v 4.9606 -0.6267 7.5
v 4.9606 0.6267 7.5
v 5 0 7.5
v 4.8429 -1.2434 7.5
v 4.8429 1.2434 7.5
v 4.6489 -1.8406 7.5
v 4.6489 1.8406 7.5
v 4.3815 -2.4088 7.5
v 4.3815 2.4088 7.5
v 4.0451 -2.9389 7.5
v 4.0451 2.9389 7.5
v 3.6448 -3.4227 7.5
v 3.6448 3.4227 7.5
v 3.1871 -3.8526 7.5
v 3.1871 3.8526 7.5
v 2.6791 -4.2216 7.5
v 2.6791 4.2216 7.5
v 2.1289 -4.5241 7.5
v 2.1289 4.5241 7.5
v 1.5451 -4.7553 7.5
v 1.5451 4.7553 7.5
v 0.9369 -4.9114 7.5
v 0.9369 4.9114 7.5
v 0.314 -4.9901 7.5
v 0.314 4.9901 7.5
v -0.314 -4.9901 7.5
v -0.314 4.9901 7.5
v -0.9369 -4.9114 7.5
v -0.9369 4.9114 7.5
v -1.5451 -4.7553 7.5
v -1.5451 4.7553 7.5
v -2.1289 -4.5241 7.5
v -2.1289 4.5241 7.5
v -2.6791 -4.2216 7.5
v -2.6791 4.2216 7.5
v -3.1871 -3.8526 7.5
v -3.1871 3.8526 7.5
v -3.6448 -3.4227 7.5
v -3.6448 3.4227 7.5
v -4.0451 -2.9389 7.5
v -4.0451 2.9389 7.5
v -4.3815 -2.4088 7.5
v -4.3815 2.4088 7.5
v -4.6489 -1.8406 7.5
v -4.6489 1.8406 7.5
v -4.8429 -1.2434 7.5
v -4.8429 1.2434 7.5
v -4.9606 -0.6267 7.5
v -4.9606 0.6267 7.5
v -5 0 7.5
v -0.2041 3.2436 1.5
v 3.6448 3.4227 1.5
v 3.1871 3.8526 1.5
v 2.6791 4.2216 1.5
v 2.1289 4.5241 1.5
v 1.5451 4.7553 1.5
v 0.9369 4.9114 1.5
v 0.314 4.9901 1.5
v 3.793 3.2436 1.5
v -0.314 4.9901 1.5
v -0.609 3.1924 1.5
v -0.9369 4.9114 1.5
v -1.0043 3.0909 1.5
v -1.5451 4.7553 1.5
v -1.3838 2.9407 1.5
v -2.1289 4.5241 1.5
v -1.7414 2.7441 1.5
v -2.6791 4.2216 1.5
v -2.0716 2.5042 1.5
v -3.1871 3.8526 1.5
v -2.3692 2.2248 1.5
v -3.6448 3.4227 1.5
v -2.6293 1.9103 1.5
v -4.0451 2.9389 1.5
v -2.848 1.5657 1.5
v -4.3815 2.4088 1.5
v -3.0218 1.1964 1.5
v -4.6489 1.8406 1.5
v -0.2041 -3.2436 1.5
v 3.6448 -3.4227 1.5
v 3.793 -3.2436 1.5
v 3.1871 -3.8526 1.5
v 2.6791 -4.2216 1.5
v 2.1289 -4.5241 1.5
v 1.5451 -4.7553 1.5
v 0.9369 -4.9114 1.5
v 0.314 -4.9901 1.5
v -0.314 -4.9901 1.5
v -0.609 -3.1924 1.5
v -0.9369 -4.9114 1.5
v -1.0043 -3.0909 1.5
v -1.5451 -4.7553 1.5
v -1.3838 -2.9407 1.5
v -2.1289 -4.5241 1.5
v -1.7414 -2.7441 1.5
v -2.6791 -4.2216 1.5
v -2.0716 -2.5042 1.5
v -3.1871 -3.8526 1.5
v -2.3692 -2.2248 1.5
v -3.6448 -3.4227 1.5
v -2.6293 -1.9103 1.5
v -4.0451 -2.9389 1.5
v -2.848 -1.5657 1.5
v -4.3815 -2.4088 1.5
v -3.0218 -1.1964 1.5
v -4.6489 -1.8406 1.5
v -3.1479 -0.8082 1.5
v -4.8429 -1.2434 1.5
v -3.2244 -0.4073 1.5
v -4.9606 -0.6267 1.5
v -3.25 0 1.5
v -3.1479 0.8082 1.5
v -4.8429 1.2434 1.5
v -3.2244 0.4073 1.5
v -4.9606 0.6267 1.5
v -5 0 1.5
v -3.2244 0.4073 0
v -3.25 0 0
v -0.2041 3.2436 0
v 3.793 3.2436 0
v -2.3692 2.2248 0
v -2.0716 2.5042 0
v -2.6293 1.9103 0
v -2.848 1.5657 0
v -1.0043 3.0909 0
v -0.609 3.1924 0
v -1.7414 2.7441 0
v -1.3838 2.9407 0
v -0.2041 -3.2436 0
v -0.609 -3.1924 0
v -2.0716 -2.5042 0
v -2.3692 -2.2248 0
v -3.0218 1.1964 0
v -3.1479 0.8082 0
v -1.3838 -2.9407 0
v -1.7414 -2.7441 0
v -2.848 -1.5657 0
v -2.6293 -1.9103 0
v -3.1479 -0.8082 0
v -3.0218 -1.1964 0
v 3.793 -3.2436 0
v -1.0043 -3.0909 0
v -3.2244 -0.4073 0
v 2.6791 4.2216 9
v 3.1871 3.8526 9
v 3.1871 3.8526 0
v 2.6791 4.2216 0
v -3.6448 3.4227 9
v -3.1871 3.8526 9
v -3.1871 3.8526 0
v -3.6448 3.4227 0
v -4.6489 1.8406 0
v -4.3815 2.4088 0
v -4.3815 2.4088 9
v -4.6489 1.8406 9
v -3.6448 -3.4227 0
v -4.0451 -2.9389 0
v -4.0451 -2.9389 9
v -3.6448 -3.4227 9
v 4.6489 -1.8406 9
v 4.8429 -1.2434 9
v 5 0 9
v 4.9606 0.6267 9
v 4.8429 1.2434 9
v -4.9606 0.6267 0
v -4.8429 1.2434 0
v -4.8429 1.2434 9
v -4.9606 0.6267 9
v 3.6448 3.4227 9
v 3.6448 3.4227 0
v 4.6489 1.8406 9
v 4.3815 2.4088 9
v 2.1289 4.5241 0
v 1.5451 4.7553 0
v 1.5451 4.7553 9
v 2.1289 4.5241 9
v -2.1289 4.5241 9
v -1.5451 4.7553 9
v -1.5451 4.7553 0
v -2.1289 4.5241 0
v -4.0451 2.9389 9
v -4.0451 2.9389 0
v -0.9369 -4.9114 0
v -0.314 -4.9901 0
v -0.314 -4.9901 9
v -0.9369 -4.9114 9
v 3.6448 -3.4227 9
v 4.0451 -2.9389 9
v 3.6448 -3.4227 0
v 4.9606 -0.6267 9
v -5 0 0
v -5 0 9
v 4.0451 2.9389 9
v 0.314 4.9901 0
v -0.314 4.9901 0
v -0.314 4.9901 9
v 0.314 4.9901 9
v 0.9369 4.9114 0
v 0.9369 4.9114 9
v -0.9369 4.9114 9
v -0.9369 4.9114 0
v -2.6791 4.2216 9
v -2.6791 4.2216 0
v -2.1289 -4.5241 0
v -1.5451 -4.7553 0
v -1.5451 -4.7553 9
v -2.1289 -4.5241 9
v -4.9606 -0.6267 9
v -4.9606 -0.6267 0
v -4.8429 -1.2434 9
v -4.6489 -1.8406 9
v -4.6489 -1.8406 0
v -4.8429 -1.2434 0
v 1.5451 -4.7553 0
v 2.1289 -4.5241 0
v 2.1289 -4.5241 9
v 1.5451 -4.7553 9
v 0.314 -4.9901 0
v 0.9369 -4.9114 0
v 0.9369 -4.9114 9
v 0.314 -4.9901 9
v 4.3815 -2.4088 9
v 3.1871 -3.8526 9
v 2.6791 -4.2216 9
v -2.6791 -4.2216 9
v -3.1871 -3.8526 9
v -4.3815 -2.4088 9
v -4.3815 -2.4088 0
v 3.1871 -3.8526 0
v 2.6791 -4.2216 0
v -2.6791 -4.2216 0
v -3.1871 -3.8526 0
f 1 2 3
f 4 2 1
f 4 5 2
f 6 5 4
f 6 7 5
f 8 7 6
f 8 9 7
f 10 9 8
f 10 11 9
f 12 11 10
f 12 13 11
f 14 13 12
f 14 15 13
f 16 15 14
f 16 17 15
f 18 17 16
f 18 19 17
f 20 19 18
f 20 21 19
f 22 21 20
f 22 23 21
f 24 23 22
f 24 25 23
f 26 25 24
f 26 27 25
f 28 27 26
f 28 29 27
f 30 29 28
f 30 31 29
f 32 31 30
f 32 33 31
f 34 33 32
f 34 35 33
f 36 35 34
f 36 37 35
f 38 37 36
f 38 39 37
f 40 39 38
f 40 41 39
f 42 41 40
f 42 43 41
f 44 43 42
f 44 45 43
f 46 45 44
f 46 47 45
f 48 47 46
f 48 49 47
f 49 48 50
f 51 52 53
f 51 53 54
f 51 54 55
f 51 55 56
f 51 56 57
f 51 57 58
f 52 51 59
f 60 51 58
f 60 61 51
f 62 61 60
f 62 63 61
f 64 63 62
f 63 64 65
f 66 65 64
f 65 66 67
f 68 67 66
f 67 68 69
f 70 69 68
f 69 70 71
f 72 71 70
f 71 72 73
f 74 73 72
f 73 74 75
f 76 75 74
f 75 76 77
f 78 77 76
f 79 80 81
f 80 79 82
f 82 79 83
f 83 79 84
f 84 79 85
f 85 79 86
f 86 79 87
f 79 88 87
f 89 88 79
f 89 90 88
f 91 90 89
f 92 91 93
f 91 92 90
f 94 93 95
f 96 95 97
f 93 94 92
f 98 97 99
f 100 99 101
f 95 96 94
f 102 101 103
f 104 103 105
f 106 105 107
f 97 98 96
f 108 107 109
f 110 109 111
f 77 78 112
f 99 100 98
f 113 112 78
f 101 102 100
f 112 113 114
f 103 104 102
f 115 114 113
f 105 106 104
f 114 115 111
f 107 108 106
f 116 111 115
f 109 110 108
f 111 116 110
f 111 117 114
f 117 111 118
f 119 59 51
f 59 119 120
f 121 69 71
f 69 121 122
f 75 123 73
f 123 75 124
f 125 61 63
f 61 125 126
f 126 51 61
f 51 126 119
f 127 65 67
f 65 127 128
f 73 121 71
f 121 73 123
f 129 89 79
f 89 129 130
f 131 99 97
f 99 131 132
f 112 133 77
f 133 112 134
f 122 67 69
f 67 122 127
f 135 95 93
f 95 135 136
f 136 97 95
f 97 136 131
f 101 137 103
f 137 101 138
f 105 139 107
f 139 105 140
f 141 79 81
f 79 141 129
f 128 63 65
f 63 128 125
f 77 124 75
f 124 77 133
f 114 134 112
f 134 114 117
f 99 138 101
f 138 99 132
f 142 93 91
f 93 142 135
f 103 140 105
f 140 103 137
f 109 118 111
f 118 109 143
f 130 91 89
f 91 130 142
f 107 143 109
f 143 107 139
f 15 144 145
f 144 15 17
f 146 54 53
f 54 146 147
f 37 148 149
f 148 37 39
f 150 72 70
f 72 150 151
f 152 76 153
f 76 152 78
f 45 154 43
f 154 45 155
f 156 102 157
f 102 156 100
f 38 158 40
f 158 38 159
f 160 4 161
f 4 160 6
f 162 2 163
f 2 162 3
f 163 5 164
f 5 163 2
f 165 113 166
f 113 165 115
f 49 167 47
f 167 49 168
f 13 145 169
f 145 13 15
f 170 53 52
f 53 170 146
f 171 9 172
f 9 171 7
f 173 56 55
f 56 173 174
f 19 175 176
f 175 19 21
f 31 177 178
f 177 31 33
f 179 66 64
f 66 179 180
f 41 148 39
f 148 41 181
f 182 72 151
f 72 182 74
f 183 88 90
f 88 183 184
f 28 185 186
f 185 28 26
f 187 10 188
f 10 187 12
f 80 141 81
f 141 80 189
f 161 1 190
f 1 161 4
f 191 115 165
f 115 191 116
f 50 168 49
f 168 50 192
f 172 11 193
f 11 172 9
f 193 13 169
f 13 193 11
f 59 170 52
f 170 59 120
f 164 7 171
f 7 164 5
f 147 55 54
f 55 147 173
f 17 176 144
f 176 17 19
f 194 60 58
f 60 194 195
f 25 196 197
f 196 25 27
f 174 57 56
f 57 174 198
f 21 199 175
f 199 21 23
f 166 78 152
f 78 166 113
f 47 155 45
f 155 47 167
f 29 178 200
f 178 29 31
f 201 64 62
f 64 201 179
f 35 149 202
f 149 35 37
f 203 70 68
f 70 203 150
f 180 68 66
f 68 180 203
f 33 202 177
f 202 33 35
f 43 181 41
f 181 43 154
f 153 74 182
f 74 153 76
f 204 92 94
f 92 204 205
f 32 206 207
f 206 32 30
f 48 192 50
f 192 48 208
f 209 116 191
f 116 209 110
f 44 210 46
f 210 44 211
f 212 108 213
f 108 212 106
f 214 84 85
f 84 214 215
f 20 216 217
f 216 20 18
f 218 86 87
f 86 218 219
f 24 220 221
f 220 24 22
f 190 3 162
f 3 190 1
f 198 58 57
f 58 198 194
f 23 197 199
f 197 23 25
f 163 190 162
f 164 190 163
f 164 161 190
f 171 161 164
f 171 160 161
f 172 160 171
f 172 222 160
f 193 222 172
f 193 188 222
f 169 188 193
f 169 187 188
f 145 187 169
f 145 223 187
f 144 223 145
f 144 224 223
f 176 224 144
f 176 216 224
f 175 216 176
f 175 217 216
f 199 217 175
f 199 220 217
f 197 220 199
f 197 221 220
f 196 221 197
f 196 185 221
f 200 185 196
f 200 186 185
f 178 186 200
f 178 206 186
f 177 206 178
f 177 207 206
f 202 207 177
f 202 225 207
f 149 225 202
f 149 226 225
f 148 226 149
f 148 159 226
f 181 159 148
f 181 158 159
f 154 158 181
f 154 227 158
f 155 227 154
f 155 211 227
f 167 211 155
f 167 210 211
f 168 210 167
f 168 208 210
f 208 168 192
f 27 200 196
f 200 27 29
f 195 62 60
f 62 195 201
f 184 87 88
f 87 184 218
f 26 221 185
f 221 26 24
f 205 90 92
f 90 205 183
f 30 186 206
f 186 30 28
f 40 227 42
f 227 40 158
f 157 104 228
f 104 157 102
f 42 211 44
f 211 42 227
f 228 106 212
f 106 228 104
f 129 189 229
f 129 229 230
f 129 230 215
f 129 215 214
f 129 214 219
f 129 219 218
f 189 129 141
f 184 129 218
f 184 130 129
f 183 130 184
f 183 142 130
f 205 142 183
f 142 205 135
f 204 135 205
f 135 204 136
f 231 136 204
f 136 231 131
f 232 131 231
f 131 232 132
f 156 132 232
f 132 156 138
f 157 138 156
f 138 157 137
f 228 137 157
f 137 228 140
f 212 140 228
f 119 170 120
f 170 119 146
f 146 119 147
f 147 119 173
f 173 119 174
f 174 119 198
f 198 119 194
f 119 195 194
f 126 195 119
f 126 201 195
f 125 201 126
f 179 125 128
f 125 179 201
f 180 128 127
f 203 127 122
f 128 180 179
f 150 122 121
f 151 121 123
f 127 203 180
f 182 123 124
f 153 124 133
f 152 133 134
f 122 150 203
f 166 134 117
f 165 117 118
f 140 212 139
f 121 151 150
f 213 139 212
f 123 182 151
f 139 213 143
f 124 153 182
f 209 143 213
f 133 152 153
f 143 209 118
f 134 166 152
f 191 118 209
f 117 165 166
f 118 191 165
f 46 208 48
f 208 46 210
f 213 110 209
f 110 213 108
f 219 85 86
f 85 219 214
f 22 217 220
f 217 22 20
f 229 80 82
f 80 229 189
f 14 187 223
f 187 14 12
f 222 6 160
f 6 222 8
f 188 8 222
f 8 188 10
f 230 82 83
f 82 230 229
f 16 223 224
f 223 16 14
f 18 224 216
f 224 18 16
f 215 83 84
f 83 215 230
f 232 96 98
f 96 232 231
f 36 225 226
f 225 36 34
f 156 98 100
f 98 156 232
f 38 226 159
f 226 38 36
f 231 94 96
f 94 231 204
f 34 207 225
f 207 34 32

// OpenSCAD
$fn = 50;


difference() {
	union() {
		hull() {
			cylinder(h = 9, r = 5);
			cylinder(h = 9, r = 5);
			cylinder(h = 9, r = 5);
			cylinder(h = 9, r = 5);
		}
	}
	union() {
		translate(v = [0, 0, 1.5000000000]) {
			rotate(a = [0, 0, 0]) {
				difference() {
					union() {
						#linear_extrude(height = 6) {
							polygon(points = [[6.4142500000, 0.0000000000], [3.2071250000, 5.5549034462], [-3.2071250000, 5.5549034462], [-6.4142500000, 0.0000000000], [-3.2071250000, -5.5549034462], [3.2071250000, -5.5549034462]]);
						}
					}
					union();
				}
			}
		}
		translate(v = [5, 0, 1.5000000000]) {
			rotate(a = [0, 0, 0]) {
				difference() {
					union() {
						#linear_extrude(height = 6) {
							polygon(points = [[6.4142500000, 0.0000000000], [3.2071250000, 5.5549034462], [-3.2071250000, 5.5549034462], [-6.4142500000, 0.0000000000], [-3.2071250000, -5.5549034462], [3.2071250000, -5.5549034462]]);
						}
					}
					union();
				}
			}
		}
		translate(v = [6, 0, 1.5000000000]) {
			rotate(a = [0, 0, 0]) {
				difference() {
					union() {
						#linear_extrude(height = 6) {
							polygon(points = [[6.4142500000, 0.0000000000], [3.2071250000, 5.5549034462], [-3.2071250000, 5.5549034462], [-6.4142500000, 0.0000000000], [-3.2071250000, -5.5549034462], [3.2071250000, -5.5549034462]]);
						}
					}
					union();
				}
			}
		}
		translate(v = [7, 0, 1.5000000000]) {
			rotate(a = [0, 0, 0]) {
				difference() {
					union() {
						#linear_extrude(height = 6) {
							polygon(points = [[6.4142500000, 0.0000000000], [3.2071250000, 5.5549034462], [-3.2071250000, 5.5549034462], [-6.4142500000, 0.0000000000], [-3.2071250000, -5.5549034462], [3.2071250000, -5.5549034462]]);
						}
					}
					union();
				}
			}
		}
		translate(v = [5, 0, -7.5000000000]) {
			rotate(a = [0, 0, 0]) {
				difference() {
					union() {
						hull() {
							translate(v = [5.0000000000, 0, 0]) {
								cylinder(h = 9, r = 3.2500000000, r1 = 3.2500000000, r2 = 3.2500000000);
							}
							translate(v = [-5.0000000000, 0, 0]) {
								cylinder(h = 9, r = 3.2500000000, r1 = 3.2500000000, r2 = 3.2500000000);
							}
						}
					}
					union();
				}
			}
		}
	}
}
